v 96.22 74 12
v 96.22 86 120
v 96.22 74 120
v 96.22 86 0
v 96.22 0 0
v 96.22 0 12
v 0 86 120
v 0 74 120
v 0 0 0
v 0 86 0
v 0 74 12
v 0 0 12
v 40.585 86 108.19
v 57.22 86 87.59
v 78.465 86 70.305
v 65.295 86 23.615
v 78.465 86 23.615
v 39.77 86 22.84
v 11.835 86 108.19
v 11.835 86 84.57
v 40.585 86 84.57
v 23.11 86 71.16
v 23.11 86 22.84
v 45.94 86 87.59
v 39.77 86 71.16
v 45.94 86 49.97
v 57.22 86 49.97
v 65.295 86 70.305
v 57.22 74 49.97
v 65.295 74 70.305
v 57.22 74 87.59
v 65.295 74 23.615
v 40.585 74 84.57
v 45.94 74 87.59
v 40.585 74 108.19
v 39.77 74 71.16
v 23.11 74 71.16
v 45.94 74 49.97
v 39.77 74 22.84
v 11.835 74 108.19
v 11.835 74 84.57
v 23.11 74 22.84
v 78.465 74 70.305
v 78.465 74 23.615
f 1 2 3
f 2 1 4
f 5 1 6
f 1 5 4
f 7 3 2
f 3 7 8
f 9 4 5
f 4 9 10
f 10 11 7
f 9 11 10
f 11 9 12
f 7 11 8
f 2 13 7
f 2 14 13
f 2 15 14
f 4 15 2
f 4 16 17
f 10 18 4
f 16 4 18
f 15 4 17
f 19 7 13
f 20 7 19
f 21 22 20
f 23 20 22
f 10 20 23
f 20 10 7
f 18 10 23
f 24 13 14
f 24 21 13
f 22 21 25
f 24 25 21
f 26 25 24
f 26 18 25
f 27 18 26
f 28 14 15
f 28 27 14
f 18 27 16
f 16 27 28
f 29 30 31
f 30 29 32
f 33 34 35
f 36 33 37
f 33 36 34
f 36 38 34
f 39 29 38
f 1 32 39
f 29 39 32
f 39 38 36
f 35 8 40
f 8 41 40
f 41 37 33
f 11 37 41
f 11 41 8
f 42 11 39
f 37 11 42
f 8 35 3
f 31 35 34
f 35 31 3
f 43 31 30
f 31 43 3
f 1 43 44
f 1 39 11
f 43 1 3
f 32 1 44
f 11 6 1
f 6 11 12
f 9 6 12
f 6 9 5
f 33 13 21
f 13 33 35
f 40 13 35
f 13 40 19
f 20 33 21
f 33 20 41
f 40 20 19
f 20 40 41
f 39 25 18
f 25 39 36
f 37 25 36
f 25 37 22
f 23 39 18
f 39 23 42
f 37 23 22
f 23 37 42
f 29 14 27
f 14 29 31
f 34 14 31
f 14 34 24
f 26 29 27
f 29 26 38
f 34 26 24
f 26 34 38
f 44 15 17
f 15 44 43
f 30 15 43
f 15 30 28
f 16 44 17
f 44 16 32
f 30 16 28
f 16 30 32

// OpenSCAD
/* doodle-meta {"version":1,"parameters":{"width":{"label":"Overall width","description":"Changes the body width","unit":"mm","feature":"body_width"},"depth":{"label":"Overall depth","description":"Changes the body depth","unit":"mm","feature":"body_depth"},"height":{"label":"Overall height","description":"Changes the body height","unit":"mm","feature":"body_height"},"leg_thickness":{"label":"Leg thickness","description":"Thickness of the L-profile legs","unit":"mm","feature":"leg_thickness"},"cutout1_w":{"label":"Cutout 1 width","description":"Width of the upper-left cutout","unit":"mm","feature":"cutout_1"},"cutout1_h":{"label":"Cutout 1 height","description":"Height of the upper-left cutout","unit":"mm","feature":"cutout_1"},"cutout2_w":{"label":"Cutout 2 width","description":"Width of the lower-left slot","unit":"mm","feature":"cutout_2"},"cutout2_h":{"label":"Cutout 2 height","description":"Height of the lower-left slot","unit":"mm","feature":"cutout_2"},"cutout3_w":{"label":"Cutout 3 width","description":"Width of the center slot","unit":"mm","feature":"cutout_3"},"cutout3_h":{"label":"Cutout 3 height","description":"Height of the center slot","unit":"mm","feature":"cutout_3"},"cutout4_w":{"label":"Cutout 4 width","description":"Width of the lower-right slot","unit":"mm","feature":"cutout_4"},"cutout4_h":{"label":"Cutout 4 height","description":"Height of the lower-right slot","unit":"mm","feature":"cutout_4"}},"features":{"body_width":{"kind":"dimension","axis":"x","label":"Overall width"},"body_depth":{"kind":"dimension","axis":"y","label":"Overall depth"},"body_height":{"kind":"dimension","axis":"z","label":"Overall height"},"leg_thickness":{"kind":"dimension","axis":"z","label":"Leg thickness"},"cutout_1":{"kind":"region","label":"Upper-left cutout","min":[{"parameter":"cutout1_x","scale":1,"offset":0},{"parameter":"cutout1_y","scale":1,"offset":0},{"parameter":"cutout1_z","scale":1,"offset":0}],"max":[{"parameter":"cutout1_x","scale":1,"offset":0},{"parameter":"cutout1_y","scale":1,"offset":0},{"parameter":"cutout1_z","scale":1,"offset":0}]},"cutout_2":{"kind":"region","label":"Lower-left slot","min":[{"parameter":"cutout2_x","scale":1,"offset":0},{"parameter":"cutout2_y","scale":1,"offset":0},{"parameter":"cutout2_z","scale":1,"offset":0}],"max":[{"parameter":"cutout2_x","scale":1,"offset":0},{"parameter":"cutout2_y","scale":1,"offset":0},{"parameter":"cutout2_z","scale":1,"offset":0}]},"cutout_3":{"kind":"region","label":"Center slot","min":[{"parameter":"cutout3_x","scale":1,"offset":0},{"parameter":"cutout3_y","scale":1,"offset":0},{"parameter":"cutout3_z","scale":1,"offset":0}],"max":[{"parameter":"cutout3_x","scale":1,"offset":0},{"parameter":"cutout3_y","scale":1,"offset":0},{"parameter":"cutout3_z","scale":1,"offset":0}]},"cutout_4":{"kind":"region","label":"Lower-right slot","min":[{"parameter":"cutout4_x","scale":1,"offset":0},{"parameter":"cutout4_y","scale":1,"offset":0},{"parameter":"cutout4_z","scale":1,"offset":0}],"max":[{"parameter":"cutout4_x","scale":1,"offset":0},{"parameter":"cutout4_y","scale":1,"offset":0},{"parameter":"cutout4_z","scale":1,"offset":0}]}}} */

// Top-level editable parameters
width = 96.22;
depth = 86.0;
height = 120.0;
leg_thickness = 12.0;

// Cutout 1 (upper-left)
cutout1_w = 28.75;
cutout1_h = 23.62;
cutout1_x = 26.21;
cutout1_z = 96.38;

// Cutout 2 (lower-left)
cutout2_w = 16.66;
cutout2_h = 48.32;
cutout2_x = 31.44;
cutout2_z = 47.0;

// Cutout 3 (center)
cutout3_w = 11.28;
cutout3_h = 37.62;
cutout3_x = 51.58;
cutout3_z = 68.78;

// Cutout 4 (lower-right)
cutout4_w = 13.17;
cutout4_h = 46.69;
cutout4_x = 71.88;
cutout4_z = 46.96;

// Derived sizes (not editable)
eps = 0.01;
vertical_leg_h = height - leg_thickness;

// Modules
module l_bracket_body() {
    // Vertical leg (back)
    translate([0, depth - leg_thickness, 0])
        cube([width, leg_thickness, height]);
    // Horizontal leg (bottom)
    translate([0, 0, 0])
        cube([width, depth, leg_thickness]);
}

module cutout_cutter(w, h, x, z) {
    // Through-cut along Y (front view openings)
    translate([x - w/2, -eps, z - h/2])
        cube([w, depth + 2*eps, h]);
}

// Main design
difference() {
    l_bracket_body();
    
    // Cutout 1: upper-left
    cutout_cutter(cutout1_w, cutout1_h, cutout1_x, cutout1_z);
    
    // Cutout 2: lower-left
    cutout_cutter(cutout2_w, cutout2_h, cutout2_x, cutout2_z);
    
    // Cutout 3: center
    cutout_cutter(cutout3_w, cutout3_h, cutout3_x, cutout3_z);
    
    // Cutout 4: lower-right
    cutout_cutter(cutout4_w, cutout4_h, cutout4_x, cutout4_z);
}
